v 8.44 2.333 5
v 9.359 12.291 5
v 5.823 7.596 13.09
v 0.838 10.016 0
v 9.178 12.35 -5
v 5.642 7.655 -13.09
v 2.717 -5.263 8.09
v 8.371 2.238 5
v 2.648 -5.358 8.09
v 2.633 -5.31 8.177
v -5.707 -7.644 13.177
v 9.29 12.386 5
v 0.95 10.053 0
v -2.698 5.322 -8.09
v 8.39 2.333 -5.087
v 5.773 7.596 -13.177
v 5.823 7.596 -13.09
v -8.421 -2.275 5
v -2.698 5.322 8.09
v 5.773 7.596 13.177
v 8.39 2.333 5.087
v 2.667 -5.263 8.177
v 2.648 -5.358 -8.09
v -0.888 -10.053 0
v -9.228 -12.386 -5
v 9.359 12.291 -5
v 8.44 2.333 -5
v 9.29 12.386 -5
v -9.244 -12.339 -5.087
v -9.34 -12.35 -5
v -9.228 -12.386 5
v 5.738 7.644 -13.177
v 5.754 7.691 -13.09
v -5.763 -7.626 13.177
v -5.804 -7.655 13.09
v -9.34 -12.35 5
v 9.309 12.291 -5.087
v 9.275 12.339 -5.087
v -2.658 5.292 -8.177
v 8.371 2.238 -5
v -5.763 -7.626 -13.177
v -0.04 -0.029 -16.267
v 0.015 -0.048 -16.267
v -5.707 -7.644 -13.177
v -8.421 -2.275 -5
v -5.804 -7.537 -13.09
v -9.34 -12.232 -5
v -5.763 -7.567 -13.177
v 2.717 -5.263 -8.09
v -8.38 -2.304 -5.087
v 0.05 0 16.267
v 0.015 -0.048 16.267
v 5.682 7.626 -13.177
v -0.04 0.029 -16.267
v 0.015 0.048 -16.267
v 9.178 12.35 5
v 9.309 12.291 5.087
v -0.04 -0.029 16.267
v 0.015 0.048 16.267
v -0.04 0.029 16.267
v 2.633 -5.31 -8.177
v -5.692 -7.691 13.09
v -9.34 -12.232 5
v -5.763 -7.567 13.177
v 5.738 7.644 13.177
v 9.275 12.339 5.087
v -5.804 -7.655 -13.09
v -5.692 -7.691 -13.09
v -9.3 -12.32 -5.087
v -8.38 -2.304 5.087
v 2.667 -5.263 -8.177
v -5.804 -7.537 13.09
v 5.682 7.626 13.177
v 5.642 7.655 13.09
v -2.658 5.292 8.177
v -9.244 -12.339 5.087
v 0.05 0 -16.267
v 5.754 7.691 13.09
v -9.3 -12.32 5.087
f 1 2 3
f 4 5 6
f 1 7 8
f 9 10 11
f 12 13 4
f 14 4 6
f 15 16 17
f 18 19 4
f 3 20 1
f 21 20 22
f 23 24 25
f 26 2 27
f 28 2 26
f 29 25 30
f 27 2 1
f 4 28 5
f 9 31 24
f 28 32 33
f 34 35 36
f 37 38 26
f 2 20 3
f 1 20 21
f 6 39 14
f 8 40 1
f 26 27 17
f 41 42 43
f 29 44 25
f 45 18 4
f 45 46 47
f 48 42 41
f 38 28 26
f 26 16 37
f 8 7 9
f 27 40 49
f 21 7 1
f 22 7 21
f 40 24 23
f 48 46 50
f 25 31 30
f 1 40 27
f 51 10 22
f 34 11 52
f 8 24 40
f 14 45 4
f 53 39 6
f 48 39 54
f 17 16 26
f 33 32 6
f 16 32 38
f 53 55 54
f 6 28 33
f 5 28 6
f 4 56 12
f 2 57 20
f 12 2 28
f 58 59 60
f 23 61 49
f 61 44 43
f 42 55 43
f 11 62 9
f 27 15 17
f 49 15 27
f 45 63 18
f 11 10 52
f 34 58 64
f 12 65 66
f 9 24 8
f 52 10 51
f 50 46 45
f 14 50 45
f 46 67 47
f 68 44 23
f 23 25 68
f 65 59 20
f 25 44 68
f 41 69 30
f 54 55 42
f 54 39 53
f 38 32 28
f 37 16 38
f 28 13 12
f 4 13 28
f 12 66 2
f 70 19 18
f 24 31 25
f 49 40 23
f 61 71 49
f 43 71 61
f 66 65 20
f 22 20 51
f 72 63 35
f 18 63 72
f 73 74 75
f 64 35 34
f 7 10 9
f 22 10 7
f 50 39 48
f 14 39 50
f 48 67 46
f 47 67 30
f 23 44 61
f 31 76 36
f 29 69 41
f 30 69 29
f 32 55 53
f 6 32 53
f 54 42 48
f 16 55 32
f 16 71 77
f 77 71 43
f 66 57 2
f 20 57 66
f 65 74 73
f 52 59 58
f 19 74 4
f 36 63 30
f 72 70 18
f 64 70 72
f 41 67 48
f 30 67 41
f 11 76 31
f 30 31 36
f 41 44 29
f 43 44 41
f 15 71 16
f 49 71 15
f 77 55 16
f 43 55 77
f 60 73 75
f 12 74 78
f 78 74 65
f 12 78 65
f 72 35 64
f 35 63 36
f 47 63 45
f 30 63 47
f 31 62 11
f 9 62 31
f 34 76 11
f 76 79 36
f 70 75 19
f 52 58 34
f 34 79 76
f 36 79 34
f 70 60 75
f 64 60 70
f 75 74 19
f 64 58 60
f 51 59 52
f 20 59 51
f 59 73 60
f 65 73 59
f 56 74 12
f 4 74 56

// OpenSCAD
// Auto-generated OpenSCAD file

    inner_points = 10*[[0.5722599249733294, 0.7596229824439242, -1.3090169943749441], [-0.5722599249733294, -0.7596229824439242, 1.3090169943749441], [1.4164956880340376e-14, -3.2423688378582613e-15, -1.618033988749895], [-0.9259360090062975, -1.2290958042298372, 0.49999999999999434], [0.9259360090062975, 1.2290958042298372, -0.49999999999999434], [-1.4164956880340376e-14, 3.2423688378582613e-15, 1.618033988749895], [-0.5722599249733062, -0.7596229824439293, -1.309016994374951], [-0.9259360090062885, -1.2290958042298392, -0.5000000000000058], [0.9259360090062885, 1.2290958042298392, 0.5000000000000058], [0.5722599249733062, 0.7596229824439293, 1.309016994374951], [-0.8340004290313582, -0.2333308474580752, -0.5000000000000069], [0.8340004290313582, 0.2333308474580752, 0.5000000000000069], [-0.26174050405803767, 0.526292134985851, -0.8090169943749508], [-0.834000429031367, -0.23333084745807323, 0.4999999999999932], [0.834000429031367, 0.23333084745807323, -0.4999999999999932], [0.26174050405803767, -0.526292134985851, 0.8090169943749508], [0.2617405040580519, -0.5262921349858541, -0.8090169943749441], [-0.0919355799749304, -0.9957649567717641, 1.1379786002407855e-15], [0.0919355799749304, 0.9957649567717641, -1.1379786002407855e-15], [-0.2617405040580519, 0.5262921349858541, 0.8090169943749441]];

    outer_points = 10*[[-0.028802887989037716, -1.6172054580711597, 0.04302195693174079], [0.028802887989037716, 1.6172054580711597, -0.04302195693174079], [0.9269826837913786, -1.324345589833875, 0.06961214971823448], [0.9735867355317978, 1.2923478081171045, 1.1611401438127444e-06], [-0.9735867355317978, -1.2923478081171045, -1.1611401438127444e-06], [-0.9269826837913786, 1.324345589833875, -0.06961214971823448], [1.5286923773460845, -0.5256307191310772, 0.06961286734230898], [1.5464935410974658, 0.4738572207487425, 0.04302383569595902], [-1.5464935410974658, -0.4738572207487425, -0.04302383569595902], [-1.5286923773460845, 0.5256307191310772, -0.06961286734230898], [0.8309648425538894, 0.0, 0.556324932426536], [-0.8309648425538894, 0.0, -0.556324932426536], [0.2292551489991834, -0.7987148707027978, 0.5563242148024615], [0.25805803698822116, 0.8184905873683619, 0.5133022578707207], [-0.25805803698822116, -0.8184905873683619, -0.5133022578707207], [-0.2292551489991834, 0.7987148707027978, -0.5563242148024615], [0.6977275347921952, -0.5256307191310772, -0.486712065084227], [0.7155286985435765, 0.4738572207487425, -0.5133010967305769], [-0.7155286985435765, -0.4738572207487425, 0.5133010967305769], [-0.6977275347921952, 0.5256307191310772, 0.486712065084227]];

    // Convex hull for inner set (I)
    module inner_hull() {
        hull() {
            for (p = inner_points) {
                translate(p) sphere(r=0.1);
            }
        }
    }

    // Convex hull for outer set (O) minus inner hull (O \ I)
    module outer_minus_inner() {
        difference() {
            hull() {
                for (p = outer_points) {
                    translate(p) sphere(r=0.1);
                }
            }
            inner_hull(); // Subtract inner hull
        }
    }

    // Convex hull for outer set (O) minus all translated inner hulls
    module outer_minus_AllTranslationInner() {
        difference() {
            hull() {
                for (p = outer_points) {
                    translate(p) sphere(r=0.1);
                }
            }
            hull() {
                translate([0,0,50]) inner_hull();
                translate([0,0,-50]) inner_hull();
            }; // Subtract translated inner hulls
        }
    }

    // Difference between outer_minus_inner and outer_minus_AllTranslationInner
    module outer_minus_inner_diff() {
        difference() {
            // Outer minus inner
            difference() {
                hull() {
                    for (p = outer_points) {
                        translate(p) sphere(r=0.1);
                    }
                }
                inner_hull();
            }

            // Subtract Outer minus AllTranslationInner
            difference() {
                hull() {
                    for (p = outer_points) {
                        translate(p) sphere(r=0.1);
                    }
                }
                hull() {
                    translate([0,0,50]) inner_hull();
                    translate([0,0,-50]) inner_hull();
                };
            }
        }
    }

    // Rendering all with colors applied
    color([1, 0, 0, 0.5]) inner_hull(); // Transparent red
    
